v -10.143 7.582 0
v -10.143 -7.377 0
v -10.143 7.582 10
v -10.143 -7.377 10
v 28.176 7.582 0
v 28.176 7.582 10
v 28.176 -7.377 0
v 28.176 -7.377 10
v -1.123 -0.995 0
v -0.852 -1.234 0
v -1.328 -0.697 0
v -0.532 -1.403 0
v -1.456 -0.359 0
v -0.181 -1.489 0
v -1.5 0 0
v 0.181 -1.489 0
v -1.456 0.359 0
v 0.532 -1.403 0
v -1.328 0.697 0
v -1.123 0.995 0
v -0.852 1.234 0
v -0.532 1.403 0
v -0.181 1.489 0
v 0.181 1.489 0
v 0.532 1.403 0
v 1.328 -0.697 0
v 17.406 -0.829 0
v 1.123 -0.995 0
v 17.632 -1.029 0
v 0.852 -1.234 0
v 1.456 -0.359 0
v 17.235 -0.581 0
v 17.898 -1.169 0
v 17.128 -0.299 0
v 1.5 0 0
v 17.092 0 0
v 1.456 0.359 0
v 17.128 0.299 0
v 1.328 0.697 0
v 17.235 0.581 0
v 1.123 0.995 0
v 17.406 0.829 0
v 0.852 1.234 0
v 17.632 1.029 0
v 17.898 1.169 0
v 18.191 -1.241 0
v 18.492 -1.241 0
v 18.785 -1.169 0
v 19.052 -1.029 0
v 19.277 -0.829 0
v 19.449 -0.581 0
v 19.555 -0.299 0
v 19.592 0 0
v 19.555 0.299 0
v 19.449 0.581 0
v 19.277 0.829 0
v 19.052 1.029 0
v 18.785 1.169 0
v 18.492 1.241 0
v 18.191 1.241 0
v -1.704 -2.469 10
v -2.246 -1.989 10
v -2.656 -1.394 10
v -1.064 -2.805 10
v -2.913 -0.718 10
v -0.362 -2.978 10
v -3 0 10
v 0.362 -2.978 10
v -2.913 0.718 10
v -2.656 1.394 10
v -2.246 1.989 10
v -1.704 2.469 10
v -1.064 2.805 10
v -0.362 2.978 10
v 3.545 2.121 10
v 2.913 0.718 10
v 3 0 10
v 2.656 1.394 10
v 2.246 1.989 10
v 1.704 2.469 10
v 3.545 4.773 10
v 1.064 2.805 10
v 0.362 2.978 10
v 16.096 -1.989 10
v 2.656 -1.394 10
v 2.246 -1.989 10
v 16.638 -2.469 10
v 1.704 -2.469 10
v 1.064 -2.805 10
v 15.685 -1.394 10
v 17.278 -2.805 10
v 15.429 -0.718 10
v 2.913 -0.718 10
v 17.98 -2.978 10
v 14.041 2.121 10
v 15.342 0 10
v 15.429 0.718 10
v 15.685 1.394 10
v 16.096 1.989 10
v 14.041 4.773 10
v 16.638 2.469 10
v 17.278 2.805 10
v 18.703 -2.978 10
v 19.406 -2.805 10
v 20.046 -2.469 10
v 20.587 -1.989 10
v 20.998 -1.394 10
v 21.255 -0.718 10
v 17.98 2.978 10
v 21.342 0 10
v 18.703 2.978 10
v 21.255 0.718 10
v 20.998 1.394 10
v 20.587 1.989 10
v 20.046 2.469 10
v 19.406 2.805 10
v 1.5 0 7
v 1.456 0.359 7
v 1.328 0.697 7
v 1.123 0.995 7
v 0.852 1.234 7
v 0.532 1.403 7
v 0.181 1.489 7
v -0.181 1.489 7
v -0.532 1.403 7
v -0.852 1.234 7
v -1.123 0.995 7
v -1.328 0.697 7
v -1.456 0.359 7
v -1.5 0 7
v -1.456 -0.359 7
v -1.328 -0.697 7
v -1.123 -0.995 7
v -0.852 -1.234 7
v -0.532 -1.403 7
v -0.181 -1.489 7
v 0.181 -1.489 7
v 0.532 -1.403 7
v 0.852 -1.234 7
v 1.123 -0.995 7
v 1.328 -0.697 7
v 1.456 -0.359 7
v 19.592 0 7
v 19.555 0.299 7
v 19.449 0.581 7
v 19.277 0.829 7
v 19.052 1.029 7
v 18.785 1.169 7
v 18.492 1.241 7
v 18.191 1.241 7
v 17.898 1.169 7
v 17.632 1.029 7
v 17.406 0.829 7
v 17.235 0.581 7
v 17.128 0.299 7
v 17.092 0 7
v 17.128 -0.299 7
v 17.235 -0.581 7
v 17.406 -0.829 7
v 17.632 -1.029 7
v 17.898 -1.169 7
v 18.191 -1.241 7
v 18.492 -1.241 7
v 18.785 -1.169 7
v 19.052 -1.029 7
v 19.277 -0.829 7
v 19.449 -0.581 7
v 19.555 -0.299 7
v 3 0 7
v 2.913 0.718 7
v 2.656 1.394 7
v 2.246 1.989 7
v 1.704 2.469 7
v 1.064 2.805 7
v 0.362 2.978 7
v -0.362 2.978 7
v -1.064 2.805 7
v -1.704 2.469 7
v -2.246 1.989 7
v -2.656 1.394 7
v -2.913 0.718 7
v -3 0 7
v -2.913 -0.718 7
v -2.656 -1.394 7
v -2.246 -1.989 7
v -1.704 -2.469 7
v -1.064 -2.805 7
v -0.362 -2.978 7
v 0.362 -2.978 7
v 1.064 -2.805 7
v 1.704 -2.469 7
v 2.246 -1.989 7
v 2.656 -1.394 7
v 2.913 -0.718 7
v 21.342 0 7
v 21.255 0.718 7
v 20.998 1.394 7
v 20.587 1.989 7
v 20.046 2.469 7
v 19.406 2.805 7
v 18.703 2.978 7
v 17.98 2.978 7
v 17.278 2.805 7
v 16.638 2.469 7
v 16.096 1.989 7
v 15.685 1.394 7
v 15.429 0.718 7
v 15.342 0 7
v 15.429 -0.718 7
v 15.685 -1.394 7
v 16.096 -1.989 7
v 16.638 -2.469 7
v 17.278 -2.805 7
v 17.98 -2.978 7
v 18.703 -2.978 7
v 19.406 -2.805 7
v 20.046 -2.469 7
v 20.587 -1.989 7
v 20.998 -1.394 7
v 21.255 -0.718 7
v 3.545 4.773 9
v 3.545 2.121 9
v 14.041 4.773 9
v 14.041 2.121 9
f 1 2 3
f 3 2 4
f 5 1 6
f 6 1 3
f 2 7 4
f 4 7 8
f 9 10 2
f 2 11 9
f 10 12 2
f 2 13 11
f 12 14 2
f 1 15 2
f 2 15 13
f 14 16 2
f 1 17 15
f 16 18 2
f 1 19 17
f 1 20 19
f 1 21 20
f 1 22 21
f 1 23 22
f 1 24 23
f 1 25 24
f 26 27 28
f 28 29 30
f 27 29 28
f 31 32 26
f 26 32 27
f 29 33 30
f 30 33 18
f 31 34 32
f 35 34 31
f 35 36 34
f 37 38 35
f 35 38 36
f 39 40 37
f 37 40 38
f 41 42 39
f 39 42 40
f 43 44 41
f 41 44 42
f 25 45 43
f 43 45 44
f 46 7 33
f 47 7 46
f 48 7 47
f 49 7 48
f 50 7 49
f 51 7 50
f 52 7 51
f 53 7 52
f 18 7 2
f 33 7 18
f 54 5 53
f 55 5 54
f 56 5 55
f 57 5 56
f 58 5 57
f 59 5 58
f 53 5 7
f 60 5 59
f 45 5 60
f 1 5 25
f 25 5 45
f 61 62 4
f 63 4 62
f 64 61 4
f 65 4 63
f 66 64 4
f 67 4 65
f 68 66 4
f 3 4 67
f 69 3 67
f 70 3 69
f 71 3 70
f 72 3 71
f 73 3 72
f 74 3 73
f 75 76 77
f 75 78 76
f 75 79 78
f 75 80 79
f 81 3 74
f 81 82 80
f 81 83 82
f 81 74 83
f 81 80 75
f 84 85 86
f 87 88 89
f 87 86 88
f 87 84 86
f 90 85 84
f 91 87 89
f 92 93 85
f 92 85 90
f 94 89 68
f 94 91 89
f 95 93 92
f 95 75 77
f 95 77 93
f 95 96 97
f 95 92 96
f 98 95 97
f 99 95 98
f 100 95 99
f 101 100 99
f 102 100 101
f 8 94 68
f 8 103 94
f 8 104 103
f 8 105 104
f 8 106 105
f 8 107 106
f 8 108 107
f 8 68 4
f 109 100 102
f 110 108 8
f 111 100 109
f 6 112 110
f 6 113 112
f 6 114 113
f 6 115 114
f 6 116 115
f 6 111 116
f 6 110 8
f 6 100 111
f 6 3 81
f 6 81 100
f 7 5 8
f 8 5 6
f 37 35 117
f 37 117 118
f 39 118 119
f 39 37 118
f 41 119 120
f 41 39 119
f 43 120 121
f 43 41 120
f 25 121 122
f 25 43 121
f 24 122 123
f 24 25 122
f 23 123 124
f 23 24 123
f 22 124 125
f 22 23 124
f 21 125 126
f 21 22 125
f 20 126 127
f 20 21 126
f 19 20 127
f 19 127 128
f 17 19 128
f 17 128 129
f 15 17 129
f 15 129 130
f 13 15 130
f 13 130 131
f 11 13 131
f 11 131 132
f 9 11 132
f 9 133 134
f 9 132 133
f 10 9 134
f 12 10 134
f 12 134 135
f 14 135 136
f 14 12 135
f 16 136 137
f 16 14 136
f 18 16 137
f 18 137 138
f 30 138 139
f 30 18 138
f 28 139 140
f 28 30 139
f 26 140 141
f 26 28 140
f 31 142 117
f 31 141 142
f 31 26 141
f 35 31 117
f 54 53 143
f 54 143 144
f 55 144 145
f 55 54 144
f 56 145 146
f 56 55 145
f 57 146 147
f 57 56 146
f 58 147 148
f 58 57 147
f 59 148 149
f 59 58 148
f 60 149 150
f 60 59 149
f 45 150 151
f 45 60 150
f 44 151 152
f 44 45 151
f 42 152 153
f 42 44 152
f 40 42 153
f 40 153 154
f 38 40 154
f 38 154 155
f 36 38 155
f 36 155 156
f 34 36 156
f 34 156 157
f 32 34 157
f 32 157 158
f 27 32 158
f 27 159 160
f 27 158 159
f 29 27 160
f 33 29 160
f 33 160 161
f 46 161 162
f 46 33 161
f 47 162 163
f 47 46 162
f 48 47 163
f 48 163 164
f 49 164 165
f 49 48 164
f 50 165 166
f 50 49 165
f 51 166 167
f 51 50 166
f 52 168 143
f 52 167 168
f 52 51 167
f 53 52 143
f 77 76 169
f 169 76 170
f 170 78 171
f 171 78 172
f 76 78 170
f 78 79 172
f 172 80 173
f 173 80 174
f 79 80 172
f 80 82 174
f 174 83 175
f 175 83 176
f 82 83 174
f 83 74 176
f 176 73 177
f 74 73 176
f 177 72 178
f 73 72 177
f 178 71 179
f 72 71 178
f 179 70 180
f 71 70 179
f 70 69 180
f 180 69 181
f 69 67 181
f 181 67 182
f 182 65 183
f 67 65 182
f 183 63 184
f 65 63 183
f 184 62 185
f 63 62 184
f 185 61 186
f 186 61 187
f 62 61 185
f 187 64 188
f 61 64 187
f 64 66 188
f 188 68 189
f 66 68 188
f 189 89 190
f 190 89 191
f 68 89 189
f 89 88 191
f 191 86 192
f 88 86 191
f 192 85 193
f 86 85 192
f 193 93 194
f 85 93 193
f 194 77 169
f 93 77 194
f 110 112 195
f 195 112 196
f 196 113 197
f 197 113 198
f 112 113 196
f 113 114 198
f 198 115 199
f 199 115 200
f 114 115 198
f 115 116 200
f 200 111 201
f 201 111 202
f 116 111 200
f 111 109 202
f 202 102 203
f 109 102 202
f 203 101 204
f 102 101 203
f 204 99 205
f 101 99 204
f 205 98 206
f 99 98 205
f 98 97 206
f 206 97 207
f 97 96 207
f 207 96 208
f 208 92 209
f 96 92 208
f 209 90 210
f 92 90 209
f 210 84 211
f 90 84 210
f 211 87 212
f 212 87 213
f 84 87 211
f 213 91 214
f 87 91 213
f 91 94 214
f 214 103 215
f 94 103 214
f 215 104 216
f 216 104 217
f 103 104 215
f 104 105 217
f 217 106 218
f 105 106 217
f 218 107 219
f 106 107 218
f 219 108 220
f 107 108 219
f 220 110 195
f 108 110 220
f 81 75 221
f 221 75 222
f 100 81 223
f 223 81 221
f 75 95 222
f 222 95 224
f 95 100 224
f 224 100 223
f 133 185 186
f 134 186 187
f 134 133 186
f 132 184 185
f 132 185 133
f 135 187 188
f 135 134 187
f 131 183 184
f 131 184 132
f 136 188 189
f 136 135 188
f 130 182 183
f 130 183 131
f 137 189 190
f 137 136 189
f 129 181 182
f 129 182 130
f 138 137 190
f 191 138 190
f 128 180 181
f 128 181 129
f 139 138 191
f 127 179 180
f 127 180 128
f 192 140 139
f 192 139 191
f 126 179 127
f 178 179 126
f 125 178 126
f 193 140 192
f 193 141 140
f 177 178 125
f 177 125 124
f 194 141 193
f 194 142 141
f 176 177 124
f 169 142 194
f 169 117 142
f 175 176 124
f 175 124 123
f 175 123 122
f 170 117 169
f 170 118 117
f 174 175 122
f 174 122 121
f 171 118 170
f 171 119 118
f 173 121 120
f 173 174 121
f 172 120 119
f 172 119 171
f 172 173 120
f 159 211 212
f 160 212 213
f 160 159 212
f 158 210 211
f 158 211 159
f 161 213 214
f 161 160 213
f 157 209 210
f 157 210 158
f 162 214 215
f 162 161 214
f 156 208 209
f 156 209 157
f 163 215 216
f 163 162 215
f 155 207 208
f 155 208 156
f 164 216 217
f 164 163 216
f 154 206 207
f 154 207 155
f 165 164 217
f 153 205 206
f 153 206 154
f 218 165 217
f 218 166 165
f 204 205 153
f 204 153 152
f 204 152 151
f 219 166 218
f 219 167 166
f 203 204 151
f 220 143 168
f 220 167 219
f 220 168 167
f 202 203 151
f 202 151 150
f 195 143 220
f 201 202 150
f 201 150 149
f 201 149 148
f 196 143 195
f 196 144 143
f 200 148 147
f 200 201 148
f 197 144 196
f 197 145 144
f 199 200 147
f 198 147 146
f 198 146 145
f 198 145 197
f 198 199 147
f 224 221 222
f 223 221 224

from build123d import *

# Parameters (mm, degrees)
SKETCH001_W     = 38.319672
SKETCH001_H     = 14.959016
PAD_DEPTH       = 10
SKETCH_R        = 1.5
SKETCH_R_2      = 1.25
POCKET_DEPTH    = 10.001
SKETCH002_W     = 10.495989
SKETCH002_H     = 2.652832
POCKET001_DEPTH = 1
SKETCH003_R     = 3
POCKET002_DEPTH = 3


with BuildPart() as part:
    # Sketch001 → Pad (new body)
    with BuildSketch(Plane.XY):
        with Locations((9.016384, 0.102488)):
            Rectangle(SKETCH001_W, SKETCH001_H)
    extrude(amount=PAD_DEPTH)

    # Sketch → Pocket (cut, through all)
    with BuildSketch(Plane.XY):
        Circle(SKETCH_R)
        with Locations((18.341707, 0)):
            Circle(SKETCH_R_2)
    extrude(amount=POCKET_DEPTH, mode=Mode.SUBTRACT)

    # Sketch002 (on Face5 of Pocket) → Pocket001 (cut)
    with BuildSketch(Plane.XY.offset(10)):
        with Locations((8.792832, 3.447047)):
            Rectangle(SKETCH002_W, SKETCH002_H)
    extrude(amount=-POCKET001_DEPTH, mode=Mode.SUBTRACT)

    # Sketch003 (on Face5 of Pocket001) → Pocket002 (cut)
    with BuildSketch(Plane.XY.offset(10)):
        Circle(SKETCH003_R)
        with Locations((18.341707, 0)):
            Circle(SKETCH003_R)
    extrude(amount=-POCKET002_DEPTH, mode=Mode.SUBTRACT)


solid = part.part
